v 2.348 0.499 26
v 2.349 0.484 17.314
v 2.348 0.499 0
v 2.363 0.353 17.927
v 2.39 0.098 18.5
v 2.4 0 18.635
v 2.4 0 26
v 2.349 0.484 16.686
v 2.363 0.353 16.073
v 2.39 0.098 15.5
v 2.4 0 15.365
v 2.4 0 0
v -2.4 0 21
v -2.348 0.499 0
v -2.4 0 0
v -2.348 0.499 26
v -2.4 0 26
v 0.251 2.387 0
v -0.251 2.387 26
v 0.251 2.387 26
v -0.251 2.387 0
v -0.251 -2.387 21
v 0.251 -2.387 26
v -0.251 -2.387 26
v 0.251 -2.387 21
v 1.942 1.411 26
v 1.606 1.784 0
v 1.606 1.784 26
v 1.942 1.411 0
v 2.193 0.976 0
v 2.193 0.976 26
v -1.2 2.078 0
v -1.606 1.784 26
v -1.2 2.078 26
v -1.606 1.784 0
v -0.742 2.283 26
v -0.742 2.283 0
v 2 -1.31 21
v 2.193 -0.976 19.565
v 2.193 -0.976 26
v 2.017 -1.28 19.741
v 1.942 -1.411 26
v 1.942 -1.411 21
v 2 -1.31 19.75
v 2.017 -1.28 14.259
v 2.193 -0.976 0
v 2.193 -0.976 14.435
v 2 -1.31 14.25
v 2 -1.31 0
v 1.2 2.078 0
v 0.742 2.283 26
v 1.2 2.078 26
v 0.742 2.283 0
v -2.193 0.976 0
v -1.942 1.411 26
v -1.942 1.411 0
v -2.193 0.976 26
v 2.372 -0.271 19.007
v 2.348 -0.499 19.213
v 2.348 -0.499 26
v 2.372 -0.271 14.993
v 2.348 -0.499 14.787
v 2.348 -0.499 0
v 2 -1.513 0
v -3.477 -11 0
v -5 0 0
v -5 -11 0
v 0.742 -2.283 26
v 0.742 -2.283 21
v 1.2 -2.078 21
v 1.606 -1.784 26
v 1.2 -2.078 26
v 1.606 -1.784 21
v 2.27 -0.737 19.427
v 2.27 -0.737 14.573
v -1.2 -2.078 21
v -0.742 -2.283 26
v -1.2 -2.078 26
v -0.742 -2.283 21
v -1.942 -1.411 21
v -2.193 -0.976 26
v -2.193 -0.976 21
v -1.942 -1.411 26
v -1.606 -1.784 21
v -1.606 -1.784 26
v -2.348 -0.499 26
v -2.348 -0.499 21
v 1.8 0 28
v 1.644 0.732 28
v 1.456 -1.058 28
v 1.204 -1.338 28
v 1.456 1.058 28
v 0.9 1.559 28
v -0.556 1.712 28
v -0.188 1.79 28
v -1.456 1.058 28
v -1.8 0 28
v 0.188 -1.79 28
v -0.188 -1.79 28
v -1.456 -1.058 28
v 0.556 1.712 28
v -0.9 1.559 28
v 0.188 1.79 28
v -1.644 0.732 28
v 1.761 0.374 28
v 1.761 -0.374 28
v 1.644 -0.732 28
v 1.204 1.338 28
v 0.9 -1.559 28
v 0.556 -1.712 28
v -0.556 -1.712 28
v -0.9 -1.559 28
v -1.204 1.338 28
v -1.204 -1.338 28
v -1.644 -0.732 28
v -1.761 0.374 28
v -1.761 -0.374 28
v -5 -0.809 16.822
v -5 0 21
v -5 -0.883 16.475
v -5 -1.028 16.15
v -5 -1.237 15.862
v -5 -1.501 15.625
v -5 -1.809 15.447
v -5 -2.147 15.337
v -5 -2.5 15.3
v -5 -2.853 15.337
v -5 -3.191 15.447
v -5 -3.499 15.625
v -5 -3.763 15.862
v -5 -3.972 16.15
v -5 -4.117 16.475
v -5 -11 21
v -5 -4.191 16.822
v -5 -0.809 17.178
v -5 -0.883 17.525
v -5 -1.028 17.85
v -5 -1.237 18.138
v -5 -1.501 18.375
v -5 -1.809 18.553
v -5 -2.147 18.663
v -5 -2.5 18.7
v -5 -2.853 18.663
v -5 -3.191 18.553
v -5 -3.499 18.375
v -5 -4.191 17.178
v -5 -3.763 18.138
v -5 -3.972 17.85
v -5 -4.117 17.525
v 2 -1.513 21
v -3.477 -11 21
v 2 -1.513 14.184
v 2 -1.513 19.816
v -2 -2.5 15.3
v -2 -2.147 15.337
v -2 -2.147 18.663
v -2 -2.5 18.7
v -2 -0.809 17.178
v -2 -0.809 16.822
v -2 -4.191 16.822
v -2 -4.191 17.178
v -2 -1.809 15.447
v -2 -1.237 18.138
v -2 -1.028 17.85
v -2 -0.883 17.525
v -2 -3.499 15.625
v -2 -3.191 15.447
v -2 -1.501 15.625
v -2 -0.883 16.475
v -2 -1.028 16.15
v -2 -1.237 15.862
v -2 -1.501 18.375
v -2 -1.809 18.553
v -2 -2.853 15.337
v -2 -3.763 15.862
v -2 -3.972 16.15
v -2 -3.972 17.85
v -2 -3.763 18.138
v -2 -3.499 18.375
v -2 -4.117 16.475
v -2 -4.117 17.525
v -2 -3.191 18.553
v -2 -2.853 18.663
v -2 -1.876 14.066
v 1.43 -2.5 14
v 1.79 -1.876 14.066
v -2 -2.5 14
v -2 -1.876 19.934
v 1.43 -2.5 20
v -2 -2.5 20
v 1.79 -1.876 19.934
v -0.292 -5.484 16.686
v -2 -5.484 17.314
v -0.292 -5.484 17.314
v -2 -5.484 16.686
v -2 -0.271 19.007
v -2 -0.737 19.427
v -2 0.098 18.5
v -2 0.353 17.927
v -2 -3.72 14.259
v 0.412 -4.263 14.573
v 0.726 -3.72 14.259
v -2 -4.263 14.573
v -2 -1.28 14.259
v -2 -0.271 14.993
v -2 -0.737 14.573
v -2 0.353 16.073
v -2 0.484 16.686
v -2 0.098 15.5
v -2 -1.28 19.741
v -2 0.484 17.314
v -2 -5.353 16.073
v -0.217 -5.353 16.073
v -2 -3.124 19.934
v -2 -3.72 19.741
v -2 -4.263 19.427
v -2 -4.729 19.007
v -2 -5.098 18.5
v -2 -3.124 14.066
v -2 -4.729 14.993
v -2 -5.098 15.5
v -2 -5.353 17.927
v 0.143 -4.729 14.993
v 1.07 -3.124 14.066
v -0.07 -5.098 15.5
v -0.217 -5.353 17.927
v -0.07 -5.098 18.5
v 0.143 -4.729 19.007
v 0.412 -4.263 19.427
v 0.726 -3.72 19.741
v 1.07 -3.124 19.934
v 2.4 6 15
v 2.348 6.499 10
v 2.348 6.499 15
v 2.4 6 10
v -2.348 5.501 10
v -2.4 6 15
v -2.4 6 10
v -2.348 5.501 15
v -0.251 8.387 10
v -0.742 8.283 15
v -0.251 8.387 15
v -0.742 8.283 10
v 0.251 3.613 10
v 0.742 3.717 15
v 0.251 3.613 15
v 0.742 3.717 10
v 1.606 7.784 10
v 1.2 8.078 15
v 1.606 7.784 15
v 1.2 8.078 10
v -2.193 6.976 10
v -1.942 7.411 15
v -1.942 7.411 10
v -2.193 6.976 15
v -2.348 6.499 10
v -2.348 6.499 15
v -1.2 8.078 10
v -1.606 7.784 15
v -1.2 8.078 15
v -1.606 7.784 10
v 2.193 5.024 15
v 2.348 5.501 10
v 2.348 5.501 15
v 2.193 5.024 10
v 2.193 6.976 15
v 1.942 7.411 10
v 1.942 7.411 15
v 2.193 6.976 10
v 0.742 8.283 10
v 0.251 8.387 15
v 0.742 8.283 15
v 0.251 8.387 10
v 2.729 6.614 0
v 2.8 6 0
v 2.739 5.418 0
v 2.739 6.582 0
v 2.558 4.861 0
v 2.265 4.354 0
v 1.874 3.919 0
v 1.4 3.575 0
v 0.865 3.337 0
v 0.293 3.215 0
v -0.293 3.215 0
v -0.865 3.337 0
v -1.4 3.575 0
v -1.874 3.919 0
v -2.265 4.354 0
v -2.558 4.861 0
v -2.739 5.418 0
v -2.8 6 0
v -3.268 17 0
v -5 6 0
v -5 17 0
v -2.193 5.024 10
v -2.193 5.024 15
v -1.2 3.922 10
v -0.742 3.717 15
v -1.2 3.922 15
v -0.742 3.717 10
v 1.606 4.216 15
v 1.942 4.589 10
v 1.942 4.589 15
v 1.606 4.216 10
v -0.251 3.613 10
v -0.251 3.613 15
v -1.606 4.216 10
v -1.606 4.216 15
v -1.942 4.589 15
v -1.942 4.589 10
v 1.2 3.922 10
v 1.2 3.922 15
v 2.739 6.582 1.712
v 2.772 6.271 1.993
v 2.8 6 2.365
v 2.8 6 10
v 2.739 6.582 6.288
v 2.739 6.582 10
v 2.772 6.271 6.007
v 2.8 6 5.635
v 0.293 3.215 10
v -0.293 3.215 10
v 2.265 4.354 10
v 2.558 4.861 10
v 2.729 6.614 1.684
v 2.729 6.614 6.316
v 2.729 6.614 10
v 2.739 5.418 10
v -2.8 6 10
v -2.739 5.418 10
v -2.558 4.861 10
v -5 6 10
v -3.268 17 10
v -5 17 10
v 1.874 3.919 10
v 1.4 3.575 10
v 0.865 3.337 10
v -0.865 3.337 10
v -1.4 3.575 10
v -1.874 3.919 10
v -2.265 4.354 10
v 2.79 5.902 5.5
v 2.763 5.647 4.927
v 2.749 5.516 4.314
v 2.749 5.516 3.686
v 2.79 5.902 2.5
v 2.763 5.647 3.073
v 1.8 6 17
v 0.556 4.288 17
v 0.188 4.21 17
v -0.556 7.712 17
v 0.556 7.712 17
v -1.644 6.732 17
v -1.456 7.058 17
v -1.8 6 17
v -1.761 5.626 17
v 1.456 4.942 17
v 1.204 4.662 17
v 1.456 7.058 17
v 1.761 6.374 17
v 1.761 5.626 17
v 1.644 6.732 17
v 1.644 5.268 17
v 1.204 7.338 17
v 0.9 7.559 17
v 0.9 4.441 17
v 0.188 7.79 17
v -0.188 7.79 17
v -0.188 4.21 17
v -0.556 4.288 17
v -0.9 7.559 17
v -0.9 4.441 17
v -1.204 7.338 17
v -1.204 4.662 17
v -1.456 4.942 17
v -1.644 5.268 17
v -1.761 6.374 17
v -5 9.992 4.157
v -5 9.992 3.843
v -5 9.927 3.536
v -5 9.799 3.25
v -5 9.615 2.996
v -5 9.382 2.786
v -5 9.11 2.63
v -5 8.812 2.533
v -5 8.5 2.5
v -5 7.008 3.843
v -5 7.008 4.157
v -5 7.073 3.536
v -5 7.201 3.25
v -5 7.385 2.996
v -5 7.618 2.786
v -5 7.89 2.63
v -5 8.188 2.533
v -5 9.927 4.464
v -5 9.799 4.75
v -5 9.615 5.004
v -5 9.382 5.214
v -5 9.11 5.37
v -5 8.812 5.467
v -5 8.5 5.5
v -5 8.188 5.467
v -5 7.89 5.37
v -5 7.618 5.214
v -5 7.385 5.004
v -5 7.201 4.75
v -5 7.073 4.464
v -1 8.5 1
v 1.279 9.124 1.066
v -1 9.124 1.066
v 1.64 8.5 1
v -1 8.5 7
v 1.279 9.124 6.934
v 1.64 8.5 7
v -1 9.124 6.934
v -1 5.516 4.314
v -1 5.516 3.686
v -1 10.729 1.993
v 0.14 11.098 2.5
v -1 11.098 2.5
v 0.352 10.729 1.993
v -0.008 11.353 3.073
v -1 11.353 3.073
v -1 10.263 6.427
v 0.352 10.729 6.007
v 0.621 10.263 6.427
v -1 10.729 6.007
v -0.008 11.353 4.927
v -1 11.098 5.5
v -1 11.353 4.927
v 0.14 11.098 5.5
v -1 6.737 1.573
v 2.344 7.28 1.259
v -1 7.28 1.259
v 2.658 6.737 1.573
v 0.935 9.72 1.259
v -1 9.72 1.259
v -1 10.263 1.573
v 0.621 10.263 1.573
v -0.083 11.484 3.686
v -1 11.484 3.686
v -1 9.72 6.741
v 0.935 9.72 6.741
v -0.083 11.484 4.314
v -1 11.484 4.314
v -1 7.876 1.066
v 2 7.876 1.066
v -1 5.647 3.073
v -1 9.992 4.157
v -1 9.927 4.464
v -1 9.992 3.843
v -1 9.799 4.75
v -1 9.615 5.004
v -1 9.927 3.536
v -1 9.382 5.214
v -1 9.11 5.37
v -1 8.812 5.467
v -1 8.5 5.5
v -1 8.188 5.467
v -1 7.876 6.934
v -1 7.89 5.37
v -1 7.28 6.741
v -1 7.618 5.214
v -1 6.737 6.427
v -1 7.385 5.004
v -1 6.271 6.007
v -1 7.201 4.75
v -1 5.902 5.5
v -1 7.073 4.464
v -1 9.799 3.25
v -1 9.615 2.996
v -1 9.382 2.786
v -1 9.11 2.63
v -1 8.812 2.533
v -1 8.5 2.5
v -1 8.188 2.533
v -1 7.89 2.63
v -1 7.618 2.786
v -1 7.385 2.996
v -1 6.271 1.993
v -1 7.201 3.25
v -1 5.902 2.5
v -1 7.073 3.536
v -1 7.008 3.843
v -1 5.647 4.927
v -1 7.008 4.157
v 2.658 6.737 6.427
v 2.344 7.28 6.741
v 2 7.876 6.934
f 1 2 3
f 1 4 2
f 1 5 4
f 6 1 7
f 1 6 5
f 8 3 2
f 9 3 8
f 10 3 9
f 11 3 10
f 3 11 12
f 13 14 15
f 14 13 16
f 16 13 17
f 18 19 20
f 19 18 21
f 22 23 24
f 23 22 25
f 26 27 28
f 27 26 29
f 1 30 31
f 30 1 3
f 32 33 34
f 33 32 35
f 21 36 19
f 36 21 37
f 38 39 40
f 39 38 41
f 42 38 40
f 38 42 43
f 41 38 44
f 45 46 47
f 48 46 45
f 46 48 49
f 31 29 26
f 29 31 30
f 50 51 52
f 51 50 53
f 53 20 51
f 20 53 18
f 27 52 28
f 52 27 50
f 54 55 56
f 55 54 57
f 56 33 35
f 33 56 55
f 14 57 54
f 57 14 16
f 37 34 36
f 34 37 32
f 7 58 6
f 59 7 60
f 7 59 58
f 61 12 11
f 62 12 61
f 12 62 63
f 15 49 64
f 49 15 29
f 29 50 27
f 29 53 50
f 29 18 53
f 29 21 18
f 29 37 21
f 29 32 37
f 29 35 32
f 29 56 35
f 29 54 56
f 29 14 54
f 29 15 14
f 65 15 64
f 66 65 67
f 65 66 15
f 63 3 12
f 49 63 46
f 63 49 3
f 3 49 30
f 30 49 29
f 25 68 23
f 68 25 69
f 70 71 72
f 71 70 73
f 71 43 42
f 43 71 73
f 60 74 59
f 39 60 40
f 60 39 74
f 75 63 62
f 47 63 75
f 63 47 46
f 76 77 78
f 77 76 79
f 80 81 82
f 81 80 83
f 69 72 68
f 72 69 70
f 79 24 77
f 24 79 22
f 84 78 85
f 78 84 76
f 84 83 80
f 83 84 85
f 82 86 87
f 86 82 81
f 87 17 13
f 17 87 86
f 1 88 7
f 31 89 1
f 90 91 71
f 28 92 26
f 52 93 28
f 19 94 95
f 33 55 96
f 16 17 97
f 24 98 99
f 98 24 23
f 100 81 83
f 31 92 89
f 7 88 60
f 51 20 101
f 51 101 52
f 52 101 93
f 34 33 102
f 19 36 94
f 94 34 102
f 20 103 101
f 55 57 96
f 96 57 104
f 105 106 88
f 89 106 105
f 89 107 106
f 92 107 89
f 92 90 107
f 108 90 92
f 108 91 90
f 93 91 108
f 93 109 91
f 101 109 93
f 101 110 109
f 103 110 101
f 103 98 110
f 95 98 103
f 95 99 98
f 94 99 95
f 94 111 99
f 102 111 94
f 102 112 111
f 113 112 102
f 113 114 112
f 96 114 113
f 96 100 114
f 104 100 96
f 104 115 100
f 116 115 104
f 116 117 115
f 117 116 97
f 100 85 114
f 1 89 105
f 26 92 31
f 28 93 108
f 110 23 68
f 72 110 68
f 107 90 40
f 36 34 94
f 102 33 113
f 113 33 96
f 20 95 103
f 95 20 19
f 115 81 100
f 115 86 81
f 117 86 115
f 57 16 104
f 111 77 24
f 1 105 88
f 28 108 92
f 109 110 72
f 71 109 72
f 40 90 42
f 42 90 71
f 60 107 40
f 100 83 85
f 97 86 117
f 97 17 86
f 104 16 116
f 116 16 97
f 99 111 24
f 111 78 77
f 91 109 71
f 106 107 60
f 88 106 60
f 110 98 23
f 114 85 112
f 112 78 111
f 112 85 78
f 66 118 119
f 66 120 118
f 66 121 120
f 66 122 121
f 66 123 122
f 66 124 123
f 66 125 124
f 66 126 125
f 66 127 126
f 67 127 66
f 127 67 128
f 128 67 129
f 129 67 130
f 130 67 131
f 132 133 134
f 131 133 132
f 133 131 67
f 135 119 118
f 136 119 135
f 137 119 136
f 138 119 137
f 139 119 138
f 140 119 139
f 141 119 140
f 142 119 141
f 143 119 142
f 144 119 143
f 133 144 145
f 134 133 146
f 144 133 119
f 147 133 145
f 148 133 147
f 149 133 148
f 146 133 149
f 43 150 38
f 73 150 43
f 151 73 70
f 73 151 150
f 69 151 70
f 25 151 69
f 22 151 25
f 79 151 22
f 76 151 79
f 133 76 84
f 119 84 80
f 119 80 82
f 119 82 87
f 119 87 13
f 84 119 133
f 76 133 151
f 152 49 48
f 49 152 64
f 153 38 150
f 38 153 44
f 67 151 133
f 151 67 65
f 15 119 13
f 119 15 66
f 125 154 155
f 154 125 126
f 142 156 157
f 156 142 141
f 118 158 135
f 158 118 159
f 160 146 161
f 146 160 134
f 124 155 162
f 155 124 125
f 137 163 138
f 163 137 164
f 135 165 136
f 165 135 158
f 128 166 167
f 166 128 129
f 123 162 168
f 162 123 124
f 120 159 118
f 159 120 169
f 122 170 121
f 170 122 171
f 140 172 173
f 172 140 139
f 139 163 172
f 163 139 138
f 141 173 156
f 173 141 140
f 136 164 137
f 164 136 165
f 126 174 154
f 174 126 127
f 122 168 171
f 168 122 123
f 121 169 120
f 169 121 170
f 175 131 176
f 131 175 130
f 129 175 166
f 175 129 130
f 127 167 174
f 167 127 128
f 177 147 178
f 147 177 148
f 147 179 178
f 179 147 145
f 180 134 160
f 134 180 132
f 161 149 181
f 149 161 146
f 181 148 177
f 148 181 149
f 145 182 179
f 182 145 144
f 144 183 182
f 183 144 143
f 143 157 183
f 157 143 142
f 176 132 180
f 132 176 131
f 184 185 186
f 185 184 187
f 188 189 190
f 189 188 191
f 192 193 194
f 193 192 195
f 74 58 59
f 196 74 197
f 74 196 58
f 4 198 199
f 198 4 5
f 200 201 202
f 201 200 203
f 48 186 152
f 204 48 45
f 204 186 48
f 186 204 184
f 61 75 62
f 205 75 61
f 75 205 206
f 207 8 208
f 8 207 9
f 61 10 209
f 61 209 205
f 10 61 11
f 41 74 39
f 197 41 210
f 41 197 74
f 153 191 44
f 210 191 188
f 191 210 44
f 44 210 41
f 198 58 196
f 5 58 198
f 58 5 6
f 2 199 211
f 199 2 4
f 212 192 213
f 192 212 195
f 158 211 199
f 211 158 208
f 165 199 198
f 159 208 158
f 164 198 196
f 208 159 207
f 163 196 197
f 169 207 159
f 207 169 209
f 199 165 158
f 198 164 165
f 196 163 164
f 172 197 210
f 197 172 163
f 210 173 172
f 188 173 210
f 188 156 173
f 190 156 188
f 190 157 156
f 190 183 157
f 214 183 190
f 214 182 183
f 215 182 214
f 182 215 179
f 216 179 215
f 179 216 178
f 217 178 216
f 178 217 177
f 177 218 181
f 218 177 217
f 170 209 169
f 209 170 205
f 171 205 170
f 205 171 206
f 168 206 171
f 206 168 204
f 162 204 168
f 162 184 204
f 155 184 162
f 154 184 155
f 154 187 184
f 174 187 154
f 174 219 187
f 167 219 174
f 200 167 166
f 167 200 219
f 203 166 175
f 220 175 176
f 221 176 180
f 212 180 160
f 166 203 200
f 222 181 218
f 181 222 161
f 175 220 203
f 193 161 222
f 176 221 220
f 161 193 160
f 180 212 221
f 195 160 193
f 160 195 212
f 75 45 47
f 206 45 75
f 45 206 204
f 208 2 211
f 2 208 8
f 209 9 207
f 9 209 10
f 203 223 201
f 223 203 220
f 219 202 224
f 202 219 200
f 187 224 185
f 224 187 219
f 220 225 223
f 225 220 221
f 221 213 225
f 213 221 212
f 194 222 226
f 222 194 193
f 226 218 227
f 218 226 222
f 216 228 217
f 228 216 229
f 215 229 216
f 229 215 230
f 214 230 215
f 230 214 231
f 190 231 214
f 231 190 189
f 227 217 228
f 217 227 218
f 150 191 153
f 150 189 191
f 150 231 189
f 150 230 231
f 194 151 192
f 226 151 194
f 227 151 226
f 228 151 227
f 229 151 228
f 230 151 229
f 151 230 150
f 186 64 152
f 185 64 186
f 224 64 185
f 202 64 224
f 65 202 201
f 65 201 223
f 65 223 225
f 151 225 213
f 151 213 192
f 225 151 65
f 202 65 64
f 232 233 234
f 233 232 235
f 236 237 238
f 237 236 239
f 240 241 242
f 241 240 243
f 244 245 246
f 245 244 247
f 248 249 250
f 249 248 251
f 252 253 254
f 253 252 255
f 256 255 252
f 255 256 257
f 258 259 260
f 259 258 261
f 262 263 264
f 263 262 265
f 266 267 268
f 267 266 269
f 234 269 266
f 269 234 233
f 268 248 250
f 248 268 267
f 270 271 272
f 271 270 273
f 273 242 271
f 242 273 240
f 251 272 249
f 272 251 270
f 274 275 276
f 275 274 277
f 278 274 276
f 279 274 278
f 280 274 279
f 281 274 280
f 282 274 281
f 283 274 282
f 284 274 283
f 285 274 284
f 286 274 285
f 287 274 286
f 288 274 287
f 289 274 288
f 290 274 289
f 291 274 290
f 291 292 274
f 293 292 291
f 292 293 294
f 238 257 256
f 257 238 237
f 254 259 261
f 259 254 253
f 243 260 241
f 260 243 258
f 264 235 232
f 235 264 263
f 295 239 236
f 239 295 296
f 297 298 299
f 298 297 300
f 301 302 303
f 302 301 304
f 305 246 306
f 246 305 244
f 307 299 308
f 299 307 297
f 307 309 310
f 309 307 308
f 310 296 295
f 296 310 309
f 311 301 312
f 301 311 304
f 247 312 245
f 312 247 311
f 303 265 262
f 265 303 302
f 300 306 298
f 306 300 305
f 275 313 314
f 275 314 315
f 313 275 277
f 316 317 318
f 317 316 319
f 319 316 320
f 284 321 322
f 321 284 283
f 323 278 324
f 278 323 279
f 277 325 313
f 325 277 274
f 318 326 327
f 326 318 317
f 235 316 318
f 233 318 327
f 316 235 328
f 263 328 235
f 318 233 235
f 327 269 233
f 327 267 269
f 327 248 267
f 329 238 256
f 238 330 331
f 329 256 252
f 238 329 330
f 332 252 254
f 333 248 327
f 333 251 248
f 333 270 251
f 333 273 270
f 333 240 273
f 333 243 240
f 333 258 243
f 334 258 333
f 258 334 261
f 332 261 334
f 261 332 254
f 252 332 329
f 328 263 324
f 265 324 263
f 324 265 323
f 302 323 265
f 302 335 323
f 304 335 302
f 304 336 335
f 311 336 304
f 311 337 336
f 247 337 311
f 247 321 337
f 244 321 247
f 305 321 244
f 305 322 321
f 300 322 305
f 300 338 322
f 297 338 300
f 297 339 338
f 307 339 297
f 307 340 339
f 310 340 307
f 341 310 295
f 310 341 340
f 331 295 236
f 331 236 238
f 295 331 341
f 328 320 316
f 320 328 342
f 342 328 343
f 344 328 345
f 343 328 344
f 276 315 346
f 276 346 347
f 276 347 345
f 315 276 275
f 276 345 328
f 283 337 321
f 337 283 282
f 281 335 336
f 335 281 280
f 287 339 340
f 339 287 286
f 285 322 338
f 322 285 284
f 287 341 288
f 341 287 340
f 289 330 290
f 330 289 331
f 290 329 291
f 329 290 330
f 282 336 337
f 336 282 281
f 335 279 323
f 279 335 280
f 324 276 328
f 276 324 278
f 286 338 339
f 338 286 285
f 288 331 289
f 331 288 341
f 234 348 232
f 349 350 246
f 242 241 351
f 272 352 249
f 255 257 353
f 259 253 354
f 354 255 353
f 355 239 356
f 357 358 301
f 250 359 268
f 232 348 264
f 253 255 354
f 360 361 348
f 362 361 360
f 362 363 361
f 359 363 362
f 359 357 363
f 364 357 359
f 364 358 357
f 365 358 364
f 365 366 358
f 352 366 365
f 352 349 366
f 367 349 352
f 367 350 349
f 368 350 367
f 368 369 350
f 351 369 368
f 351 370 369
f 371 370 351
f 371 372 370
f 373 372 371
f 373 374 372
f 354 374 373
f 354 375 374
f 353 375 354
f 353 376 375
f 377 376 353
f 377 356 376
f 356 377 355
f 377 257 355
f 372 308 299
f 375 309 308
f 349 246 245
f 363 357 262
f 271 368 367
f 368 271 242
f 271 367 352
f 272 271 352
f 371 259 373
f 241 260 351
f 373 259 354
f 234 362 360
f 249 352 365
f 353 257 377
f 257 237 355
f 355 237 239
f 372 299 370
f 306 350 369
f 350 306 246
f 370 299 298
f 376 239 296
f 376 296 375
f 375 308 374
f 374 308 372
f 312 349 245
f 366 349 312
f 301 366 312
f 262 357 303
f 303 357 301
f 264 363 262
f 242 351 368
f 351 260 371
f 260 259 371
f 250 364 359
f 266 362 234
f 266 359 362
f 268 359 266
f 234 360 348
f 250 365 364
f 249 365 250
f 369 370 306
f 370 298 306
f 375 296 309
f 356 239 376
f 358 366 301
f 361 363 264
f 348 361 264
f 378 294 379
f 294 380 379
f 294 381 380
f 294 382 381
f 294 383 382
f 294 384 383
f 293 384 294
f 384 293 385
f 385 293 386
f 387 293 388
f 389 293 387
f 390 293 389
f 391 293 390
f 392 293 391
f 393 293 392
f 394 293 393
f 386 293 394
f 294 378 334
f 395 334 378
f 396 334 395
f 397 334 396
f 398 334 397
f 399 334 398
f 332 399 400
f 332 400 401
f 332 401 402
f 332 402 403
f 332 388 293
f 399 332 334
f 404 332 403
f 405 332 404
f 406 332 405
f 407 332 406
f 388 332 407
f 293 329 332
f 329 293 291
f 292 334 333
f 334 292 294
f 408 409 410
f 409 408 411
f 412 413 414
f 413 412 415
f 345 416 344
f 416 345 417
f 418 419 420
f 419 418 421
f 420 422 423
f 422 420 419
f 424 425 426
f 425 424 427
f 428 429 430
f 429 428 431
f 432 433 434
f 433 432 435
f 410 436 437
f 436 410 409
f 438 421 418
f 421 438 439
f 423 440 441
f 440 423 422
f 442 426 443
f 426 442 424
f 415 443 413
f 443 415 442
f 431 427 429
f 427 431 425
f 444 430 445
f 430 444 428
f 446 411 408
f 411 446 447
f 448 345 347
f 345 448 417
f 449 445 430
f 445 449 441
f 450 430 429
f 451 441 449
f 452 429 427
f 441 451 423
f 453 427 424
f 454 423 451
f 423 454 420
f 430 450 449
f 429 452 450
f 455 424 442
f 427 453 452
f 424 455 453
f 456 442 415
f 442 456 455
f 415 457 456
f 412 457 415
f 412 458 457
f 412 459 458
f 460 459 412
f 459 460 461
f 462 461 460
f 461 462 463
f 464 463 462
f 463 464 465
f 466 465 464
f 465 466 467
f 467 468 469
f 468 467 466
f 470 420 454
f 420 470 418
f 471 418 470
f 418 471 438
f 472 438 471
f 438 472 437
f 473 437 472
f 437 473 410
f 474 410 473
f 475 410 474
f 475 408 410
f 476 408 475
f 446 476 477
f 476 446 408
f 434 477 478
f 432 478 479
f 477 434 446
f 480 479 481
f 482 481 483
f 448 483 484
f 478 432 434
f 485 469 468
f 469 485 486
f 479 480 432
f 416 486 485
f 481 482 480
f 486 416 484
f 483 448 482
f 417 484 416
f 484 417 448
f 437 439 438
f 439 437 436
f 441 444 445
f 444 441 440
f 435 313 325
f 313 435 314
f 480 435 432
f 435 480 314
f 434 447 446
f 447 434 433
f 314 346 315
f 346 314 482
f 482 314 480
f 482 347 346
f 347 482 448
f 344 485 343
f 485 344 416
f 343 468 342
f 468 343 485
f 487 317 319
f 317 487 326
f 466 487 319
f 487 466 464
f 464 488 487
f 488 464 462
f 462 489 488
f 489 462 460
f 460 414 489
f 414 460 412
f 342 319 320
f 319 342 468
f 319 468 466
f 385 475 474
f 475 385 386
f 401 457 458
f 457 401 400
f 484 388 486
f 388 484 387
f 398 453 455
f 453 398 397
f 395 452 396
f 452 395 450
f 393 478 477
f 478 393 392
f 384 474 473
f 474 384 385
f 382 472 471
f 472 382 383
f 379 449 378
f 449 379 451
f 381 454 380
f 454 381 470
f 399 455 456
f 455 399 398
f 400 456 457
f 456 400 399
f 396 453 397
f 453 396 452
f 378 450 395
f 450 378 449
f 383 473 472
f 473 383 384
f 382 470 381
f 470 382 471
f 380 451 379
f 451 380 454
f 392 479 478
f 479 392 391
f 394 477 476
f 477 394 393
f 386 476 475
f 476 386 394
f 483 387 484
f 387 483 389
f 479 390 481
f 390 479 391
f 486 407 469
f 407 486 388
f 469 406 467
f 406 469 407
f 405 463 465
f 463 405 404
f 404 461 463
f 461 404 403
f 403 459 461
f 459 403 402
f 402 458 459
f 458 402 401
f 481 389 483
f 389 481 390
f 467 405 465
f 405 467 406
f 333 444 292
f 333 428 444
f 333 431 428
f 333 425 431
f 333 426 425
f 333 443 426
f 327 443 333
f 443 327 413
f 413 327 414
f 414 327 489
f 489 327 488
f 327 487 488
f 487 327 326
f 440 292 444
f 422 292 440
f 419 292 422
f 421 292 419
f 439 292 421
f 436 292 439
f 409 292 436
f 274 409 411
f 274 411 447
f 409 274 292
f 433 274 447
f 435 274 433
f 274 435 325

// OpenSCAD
//Original Prusa

// PRUSA iteration3
// RAMBo cover hinges
// GNU GPL v3
// Josef Průša <iam@josefprusa.cz> and contributors
// http://www.reprap.org/wiki/Prusa_Mendel
// http://prusamendel.org

module upper_hinge()
{
difference()    
{
    union(){
     cylinder( h = 26, r = 2.4, $fn=30); 
     translate([0,0,26]) cylinder( h = 2, r1 = 2.4, r2 = 1.8, $fn=30); 
     translate( [ -5 , -11 , 0 ] ) cube( [ 7 , 11 , 21 ] );  
    }
     translate( [ -12.5 , -2.5 , 17 ] ) rotate( [0,90,0] ) cylinder( h = 20, r = 1.7, $fn=30);  
     translate( [ -2 , -2.5 , 17 ] ) rotate( [0,90,0] ) cylinder( h = 9, r = 3, $fn=30); 
     translate([-2.9,-20,-1]) rotate([0,0,60]) cube([25,5,26]);   
}
}

module lower_hinge()
{
difference()
{   
   union(){ 
    translate( [ 0 , 6 , 0 ] ) cylinder( h = 15, r = 2.4, $fn=30); 
    translate( [ 0 , 6 , 0 ] ) cylinder( h = 10, r = 2.8, $fn=30);  
    translate( [ 0 , 6 , 15 ] ) cylinder( h = 2, r1 = 2.4, r2=1.8, $fn=30);  
    translate( [ -5 , 6 , 0 ] ) cube( [ 7 , 11 , 10 ] ); 
   }
    translate( [ -1 , 8.5 , 4 ] ) rotate( [0,90,0] ) cylinder( h = 20, r = 3, $fn=30); 
    translate( [ -12 , 8.5 , 4 ] ) rotate( [0,90,0] ) cylinder( h = 20, r = 1.5, $fn=30); 
    translate([-5,20,-1]) rotate([0,0,-60]) cube([20,5,20]);   
}
}


upper_hinge();
lower_hinge();
